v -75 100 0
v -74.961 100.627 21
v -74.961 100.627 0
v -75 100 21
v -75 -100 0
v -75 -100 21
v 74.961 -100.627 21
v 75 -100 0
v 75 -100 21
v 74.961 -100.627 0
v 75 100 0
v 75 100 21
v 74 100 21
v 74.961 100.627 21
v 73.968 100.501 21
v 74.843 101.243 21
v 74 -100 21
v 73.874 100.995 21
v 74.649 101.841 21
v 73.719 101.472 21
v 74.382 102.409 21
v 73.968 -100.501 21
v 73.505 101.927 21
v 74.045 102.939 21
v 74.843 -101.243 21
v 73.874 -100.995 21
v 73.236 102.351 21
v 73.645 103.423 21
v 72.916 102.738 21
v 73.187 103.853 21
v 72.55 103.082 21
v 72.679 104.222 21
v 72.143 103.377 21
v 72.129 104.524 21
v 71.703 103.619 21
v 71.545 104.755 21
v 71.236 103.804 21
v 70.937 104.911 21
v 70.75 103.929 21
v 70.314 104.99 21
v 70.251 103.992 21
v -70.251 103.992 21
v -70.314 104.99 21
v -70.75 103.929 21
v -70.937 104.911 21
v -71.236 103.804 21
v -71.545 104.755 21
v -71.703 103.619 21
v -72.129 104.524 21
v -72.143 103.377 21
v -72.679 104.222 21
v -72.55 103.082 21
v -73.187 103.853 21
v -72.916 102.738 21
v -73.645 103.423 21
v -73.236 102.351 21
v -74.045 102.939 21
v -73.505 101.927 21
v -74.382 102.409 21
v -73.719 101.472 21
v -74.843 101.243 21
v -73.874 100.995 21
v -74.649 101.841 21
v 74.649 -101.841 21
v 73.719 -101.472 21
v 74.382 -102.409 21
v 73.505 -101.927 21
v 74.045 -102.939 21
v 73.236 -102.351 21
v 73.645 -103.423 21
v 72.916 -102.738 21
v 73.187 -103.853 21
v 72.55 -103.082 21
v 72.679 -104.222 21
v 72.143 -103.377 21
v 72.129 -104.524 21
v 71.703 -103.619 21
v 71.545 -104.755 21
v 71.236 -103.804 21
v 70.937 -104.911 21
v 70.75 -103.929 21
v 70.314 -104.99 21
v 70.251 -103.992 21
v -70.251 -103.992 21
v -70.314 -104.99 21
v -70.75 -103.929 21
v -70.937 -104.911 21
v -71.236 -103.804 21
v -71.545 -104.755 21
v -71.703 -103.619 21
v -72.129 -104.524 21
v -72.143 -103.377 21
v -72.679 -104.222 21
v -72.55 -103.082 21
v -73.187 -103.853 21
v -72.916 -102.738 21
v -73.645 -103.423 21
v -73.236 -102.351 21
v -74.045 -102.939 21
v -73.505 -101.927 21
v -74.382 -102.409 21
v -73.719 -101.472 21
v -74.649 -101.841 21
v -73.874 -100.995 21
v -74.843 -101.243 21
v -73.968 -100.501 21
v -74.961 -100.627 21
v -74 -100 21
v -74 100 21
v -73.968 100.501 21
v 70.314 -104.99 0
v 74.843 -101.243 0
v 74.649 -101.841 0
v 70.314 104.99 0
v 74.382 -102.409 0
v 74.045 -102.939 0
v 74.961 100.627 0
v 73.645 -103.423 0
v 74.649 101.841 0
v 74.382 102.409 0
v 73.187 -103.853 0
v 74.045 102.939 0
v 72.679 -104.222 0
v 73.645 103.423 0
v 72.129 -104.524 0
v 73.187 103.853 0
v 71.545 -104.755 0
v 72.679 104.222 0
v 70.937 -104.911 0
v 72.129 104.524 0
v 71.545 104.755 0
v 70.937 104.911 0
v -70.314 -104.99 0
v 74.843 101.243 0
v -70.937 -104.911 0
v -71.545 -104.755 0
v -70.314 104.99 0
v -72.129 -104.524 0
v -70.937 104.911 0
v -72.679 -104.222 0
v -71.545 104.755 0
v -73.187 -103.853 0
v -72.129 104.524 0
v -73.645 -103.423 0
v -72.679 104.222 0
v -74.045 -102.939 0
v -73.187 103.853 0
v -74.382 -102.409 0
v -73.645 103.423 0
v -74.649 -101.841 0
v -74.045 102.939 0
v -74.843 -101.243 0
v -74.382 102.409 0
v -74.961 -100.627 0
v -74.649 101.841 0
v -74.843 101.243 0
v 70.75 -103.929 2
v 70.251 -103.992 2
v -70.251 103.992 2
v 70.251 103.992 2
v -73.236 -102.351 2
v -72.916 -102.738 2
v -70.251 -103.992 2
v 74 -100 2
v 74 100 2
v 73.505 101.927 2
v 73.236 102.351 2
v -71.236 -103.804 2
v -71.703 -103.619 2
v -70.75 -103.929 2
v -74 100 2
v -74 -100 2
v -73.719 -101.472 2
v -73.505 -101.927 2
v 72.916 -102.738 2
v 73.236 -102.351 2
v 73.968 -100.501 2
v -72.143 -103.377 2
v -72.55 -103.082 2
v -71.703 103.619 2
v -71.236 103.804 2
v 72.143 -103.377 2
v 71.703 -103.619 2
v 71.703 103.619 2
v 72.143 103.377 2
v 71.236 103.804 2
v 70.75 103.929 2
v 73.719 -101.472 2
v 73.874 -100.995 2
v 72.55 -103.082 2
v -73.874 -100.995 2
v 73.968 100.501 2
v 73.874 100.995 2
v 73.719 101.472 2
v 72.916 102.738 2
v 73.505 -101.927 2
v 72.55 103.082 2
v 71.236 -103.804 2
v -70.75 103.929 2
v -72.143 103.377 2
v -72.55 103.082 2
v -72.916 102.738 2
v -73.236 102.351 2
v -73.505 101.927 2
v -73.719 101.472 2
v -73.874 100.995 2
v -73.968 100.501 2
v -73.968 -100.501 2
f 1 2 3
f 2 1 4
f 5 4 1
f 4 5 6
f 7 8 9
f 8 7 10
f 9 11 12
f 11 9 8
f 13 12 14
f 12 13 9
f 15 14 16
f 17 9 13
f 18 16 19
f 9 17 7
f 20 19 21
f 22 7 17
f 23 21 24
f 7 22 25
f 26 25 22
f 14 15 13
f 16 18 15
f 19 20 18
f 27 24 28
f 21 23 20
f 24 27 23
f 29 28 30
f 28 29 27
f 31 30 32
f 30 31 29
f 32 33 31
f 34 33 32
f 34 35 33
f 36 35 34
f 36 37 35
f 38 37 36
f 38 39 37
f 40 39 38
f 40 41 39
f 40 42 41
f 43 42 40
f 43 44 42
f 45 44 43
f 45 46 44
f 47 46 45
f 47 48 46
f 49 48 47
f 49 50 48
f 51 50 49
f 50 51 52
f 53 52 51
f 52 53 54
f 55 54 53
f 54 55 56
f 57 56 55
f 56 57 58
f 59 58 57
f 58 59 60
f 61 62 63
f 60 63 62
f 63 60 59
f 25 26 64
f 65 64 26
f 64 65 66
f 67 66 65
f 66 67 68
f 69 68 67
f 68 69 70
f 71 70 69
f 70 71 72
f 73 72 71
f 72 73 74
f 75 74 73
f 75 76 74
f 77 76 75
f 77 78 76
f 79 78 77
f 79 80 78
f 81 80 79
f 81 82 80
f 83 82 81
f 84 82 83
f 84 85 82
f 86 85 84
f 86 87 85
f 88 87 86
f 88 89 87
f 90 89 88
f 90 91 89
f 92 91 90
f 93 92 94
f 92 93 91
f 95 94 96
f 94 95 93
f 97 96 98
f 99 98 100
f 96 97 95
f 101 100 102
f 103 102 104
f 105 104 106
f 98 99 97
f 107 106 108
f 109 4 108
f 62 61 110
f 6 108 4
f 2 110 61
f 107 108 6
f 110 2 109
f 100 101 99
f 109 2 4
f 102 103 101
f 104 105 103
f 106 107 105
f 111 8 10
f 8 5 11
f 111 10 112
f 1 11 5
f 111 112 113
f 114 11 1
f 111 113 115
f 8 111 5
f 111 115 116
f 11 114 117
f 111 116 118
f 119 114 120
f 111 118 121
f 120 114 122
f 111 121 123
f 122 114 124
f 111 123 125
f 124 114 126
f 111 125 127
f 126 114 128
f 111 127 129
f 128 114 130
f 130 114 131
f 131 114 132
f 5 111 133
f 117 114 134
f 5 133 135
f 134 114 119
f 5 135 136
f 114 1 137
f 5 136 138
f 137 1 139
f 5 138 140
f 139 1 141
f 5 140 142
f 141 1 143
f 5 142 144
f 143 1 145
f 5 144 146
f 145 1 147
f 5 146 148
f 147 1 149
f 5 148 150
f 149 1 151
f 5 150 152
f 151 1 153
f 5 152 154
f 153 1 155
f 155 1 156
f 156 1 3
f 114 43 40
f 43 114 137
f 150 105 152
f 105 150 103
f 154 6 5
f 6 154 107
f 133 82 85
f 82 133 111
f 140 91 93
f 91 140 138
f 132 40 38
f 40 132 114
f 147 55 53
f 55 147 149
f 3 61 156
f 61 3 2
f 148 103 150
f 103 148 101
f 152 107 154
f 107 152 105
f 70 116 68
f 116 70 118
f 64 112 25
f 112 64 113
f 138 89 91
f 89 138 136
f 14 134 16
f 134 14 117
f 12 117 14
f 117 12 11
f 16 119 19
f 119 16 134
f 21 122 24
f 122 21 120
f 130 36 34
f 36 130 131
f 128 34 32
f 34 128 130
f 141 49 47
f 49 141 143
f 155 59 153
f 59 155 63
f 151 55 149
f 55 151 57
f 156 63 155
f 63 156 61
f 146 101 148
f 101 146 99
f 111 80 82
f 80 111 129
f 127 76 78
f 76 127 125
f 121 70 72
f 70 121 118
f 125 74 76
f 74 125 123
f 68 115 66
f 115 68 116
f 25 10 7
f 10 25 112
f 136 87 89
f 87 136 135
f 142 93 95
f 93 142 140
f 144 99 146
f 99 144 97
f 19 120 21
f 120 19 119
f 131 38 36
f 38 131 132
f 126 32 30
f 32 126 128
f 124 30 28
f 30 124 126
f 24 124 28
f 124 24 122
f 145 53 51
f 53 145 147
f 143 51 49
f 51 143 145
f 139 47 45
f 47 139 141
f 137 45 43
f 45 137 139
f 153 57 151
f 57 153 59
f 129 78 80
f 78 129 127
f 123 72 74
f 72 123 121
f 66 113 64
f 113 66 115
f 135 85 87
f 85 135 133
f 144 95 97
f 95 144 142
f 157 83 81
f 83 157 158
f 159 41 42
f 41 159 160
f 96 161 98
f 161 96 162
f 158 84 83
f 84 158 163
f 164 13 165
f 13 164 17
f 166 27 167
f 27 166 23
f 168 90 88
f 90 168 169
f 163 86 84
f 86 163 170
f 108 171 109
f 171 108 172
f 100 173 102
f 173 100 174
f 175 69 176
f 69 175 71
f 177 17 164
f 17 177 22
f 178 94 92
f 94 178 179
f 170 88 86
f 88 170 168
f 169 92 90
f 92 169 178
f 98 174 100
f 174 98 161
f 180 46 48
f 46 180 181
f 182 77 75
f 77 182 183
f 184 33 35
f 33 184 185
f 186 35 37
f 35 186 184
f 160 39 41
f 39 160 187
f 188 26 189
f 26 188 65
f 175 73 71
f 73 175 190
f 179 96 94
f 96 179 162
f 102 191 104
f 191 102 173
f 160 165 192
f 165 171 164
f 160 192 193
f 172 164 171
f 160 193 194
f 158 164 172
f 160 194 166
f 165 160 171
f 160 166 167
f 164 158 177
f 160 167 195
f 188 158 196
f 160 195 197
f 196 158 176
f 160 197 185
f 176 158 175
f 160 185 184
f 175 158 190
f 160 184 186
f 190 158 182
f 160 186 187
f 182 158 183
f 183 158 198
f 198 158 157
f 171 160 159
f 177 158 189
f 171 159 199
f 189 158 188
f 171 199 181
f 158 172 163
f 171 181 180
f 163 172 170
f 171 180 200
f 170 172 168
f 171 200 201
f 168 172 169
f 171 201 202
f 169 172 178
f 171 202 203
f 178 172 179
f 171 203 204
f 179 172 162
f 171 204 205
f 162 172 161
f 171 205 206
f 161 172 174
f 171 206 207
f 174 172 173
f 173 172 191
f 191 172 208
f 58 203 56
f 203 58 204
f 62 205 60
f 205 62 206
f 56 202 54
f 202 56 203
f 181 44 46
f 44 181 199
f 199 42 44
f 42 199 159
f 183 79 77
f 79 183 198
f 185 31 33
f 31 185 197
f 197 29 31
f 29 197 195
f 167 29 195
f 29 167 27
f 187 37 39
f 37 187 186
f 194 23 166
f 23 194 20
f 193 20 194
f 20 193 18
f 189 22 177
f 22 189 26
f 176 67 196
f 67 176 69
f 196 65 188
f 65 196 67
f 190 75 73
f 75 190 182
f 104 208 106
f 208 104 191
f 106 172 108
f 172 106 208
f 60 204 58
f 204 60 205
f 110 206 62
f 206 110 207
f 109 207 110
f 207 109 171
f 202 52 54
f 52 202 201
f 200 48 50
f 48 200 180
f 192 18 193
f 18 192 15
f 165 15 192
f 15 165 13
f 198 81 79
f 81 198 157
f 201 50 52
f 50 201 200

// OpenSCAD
$fn = 50;


difference() {
	union() {
		hull() {
			translate(v = [-70.0000000000, 100.0000000000, 0]) {
				cylinder(h = 21, r = 5);
			}
			translate(v = [70.0000000000, 100.0000000000, 0]) {
				cylinder(h = 21, r = 5);
			}
			translate(v = [-70.0000000000, -100.0000000000, 0]) {
				cylinder(h = 21, r = 5);
			}
			translate(v = [70.0000000000, -100.0000000000, 0]) {
				cylinder(h = 21, r = 5);
			}
		}
	}
	union() {
		translate(v = [0, 0, 2]) {
			hull() {
				translate(v = [-70.0000000000, 100.0000000000, 0]) {
					cylinder(h = 19, r = 4);
				}
				translate(v = [70.0000000000, 100.0000000000, 0]) {
					cylinder(h = 19, r = 4);
				}
				translate(v = [-70.0000000000, -100.0000000000, 0]) {
					cylinder(h = 19, r = 4);
				}
				translate(v = [70.0000000000, -100.0000000000, 0]) {
					cylinder(h = 19, r = 4);
				}
			}
		}
	}
}
